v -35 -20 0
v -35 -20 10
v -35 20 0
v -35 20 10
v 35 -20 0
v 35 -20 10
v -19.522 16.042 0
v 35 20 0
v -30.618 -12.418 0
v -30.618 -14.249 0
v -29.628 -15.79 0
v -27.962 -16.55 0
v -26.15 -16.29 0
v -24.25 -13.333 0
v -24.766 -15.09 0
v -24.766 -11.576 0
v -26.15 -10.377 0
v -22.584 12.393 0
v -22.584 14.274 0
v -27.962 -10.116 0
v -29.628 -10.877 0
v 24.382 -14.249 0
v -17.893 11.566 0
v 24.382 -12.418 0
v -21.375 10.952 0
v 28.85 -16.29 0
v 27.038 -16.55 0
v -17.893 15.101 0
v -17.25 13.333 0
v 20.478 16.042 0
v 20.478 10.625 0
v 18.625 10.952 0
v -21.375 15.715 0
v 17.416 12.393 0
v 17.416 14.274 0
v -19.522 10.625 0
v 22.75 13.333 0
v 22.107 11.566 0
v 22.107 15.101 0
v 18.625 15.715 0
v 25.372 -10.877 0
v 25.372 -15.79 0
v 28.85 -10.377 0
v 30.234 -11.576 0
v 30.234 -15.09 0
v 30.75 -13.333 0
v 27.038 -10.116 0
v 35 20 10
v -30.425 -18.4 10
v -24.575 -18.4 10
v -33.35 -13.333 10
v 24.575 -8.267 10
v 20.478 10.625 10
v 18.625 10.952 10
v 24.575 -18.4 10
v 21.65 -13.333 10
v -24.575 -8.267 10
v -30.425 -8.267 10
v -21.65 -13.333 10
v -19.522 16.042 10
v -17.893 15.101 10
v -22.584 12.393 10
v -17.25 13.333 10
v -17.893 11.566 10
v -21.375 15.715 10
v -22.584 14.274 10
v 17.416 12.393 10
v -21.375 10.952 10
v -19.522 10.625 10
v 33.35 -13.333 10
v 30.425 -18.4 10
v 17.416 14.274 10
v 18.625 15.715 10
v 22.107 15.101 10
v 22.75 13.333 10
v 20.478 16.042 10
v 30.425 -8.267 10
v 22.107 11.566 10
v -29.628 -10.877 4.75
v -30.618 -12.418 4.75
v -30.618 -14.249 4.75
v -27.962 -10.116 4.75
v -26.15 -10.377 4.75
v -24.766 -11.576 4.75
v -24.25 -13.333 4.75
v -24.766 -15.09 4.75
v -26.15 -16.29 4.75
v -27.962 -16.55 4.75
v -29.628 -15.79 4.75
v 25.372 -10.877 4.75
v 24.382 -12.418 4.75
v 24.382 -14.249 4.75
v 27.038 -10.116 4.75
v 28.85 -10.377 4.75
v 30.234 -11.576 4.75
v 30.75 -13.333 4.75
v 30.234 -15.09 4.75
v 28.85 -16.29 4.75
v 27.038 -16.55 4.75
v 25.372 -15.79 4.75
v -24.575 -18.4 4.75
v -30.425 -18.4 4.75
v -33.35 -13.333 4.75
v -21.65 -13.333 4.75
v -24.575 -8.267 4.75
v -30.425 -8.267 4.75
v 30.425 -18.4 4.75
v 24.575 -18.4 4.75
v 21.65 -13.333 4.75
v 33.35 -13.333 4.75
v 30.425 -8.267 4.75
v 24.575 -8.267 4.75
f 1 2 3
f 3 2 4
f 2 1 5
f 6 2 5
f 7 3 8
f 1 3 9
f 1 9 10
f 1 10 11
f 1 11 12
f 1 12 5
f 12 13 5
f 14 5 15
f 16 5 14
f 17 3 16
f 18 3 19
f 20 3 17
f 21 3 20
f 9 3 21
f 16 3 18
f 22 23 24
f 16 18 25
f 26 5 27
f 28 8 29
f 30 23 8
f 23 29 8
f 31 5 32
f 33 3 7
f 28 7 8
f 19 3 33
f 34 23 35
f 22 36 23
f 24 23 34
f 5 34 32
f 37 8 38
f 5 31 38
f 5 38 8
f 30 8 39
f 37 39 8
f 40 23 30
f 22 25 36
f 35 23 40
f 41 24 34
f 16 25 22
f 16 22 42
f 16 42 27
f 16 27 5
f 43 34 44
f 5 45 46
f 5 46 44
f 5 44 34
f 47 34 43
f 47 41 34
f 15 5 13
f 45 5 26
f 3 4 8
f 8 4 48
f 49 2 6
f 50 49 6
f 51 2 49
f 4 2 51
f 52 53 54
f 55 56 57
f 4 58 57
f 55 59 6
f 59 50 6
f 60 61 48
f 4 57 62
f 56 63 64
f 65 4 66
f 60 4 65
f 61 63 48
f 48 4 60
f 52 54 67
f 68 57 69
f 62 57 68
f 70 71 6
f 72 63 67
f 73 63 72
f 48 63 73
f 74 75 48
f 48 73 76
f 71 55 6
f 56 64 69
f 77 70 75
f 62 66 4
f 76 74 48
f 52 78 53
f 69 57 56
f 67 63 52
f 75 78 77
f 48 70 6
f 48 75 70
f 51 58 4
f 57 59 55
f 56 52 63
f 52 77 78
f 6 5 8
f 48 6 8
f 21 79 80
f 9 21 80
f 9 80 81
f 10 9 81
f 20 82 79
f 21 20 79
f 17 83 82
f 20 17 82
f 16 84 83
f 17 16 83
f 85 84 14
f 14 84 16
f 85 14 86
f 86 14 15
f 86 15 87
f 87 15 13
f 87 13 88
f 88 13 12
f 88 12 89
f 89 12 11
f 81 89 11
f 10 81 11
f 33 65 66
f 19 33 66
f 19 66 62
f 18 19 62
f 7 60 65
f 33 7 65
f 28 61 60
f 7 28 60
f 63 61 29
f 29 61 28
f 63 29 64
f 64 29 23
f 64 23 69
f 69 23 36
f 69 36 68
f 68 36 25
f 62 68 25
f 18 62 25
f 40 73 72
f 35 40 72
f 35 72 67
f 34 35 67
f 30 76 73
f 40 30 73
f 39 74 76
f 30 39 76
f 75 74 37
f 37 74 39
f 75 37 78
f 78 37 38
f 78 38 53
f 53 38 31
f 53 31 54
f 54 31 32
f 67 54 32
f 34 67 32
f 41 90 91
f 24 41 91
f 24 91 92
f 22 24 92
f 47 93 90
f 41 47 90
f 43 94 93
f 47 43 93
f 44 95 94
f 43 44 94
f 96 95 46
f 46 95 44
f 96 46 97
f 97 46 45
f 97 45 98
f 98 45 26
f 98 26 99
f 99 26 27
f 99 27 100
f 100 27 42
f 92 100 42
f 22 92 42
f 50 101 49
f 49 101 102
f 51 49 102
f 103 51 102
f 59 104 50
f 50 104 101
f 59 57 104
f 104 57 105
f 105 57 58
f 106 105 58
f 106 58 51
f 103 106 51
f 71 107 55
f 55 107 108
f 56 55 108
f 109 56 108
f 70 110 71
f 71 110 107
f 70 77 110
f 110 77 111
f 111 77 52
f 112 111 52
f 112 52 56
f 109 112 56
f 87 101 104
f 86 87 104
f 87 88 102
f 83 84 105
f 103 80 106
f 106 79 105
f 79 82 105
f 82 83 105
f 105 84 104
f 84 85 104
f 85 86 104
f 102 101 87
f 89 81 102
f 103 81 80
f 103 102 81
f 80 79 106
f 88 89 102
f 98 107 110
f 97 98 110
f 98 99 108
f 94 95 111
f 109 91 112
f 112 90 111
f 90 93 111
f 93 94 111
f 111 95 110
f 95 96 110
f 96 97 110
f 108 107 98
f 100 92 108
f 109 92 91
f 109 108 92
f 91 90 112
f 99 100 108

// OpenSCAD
/**
 * Rod Plates
 * Created by Diego Viejo
 * 22/Jan/2015
 * 
 * Plate for attaching rod structure to a 20x60 TSlot
 * 
 */

wide = 70;
length = 40;
height = 10;

rodBoltDistance = 55;
rodBoltRad = 3;
rodNutRad = 5.5;
rodNutHeight = 5.25;
slotBoltDistance = 40;
slotBoltRad = 2.5;

// Helper module: centered cube on (X,Y) but not on Z, like cylinder
module centered_cube(size)
{
  translate([-size[0]/2, -size[1]/2, 0])
    cube(size);
}

module plate()
{
  difference()
  {
    centered_cube([wide, length, height]);
    
    //t-slot attaching holes
    for(i=[-1, 1])
    {
      translate([i*slotBoltDistance/2, length/3, -1]) 
	cylinder(r=slotBoltRad+0.25, h=height+2);
    }
    
    //rod structure attaching holes
    for(i=[-1, 1])
    {
      translate([i*rodBoltDistance/2, -length/3, -1]) 
	cylinder(r=rodBoltRad+0.25, h=height+2);
      translate([i*rodBoltDistance/2, -length/3, height-rodNutHeight]) 
	cylinder(r=rodNutRad+0.35, h=rodNutHeight+1, $fn = 6);
    }
  }
}

plate();
